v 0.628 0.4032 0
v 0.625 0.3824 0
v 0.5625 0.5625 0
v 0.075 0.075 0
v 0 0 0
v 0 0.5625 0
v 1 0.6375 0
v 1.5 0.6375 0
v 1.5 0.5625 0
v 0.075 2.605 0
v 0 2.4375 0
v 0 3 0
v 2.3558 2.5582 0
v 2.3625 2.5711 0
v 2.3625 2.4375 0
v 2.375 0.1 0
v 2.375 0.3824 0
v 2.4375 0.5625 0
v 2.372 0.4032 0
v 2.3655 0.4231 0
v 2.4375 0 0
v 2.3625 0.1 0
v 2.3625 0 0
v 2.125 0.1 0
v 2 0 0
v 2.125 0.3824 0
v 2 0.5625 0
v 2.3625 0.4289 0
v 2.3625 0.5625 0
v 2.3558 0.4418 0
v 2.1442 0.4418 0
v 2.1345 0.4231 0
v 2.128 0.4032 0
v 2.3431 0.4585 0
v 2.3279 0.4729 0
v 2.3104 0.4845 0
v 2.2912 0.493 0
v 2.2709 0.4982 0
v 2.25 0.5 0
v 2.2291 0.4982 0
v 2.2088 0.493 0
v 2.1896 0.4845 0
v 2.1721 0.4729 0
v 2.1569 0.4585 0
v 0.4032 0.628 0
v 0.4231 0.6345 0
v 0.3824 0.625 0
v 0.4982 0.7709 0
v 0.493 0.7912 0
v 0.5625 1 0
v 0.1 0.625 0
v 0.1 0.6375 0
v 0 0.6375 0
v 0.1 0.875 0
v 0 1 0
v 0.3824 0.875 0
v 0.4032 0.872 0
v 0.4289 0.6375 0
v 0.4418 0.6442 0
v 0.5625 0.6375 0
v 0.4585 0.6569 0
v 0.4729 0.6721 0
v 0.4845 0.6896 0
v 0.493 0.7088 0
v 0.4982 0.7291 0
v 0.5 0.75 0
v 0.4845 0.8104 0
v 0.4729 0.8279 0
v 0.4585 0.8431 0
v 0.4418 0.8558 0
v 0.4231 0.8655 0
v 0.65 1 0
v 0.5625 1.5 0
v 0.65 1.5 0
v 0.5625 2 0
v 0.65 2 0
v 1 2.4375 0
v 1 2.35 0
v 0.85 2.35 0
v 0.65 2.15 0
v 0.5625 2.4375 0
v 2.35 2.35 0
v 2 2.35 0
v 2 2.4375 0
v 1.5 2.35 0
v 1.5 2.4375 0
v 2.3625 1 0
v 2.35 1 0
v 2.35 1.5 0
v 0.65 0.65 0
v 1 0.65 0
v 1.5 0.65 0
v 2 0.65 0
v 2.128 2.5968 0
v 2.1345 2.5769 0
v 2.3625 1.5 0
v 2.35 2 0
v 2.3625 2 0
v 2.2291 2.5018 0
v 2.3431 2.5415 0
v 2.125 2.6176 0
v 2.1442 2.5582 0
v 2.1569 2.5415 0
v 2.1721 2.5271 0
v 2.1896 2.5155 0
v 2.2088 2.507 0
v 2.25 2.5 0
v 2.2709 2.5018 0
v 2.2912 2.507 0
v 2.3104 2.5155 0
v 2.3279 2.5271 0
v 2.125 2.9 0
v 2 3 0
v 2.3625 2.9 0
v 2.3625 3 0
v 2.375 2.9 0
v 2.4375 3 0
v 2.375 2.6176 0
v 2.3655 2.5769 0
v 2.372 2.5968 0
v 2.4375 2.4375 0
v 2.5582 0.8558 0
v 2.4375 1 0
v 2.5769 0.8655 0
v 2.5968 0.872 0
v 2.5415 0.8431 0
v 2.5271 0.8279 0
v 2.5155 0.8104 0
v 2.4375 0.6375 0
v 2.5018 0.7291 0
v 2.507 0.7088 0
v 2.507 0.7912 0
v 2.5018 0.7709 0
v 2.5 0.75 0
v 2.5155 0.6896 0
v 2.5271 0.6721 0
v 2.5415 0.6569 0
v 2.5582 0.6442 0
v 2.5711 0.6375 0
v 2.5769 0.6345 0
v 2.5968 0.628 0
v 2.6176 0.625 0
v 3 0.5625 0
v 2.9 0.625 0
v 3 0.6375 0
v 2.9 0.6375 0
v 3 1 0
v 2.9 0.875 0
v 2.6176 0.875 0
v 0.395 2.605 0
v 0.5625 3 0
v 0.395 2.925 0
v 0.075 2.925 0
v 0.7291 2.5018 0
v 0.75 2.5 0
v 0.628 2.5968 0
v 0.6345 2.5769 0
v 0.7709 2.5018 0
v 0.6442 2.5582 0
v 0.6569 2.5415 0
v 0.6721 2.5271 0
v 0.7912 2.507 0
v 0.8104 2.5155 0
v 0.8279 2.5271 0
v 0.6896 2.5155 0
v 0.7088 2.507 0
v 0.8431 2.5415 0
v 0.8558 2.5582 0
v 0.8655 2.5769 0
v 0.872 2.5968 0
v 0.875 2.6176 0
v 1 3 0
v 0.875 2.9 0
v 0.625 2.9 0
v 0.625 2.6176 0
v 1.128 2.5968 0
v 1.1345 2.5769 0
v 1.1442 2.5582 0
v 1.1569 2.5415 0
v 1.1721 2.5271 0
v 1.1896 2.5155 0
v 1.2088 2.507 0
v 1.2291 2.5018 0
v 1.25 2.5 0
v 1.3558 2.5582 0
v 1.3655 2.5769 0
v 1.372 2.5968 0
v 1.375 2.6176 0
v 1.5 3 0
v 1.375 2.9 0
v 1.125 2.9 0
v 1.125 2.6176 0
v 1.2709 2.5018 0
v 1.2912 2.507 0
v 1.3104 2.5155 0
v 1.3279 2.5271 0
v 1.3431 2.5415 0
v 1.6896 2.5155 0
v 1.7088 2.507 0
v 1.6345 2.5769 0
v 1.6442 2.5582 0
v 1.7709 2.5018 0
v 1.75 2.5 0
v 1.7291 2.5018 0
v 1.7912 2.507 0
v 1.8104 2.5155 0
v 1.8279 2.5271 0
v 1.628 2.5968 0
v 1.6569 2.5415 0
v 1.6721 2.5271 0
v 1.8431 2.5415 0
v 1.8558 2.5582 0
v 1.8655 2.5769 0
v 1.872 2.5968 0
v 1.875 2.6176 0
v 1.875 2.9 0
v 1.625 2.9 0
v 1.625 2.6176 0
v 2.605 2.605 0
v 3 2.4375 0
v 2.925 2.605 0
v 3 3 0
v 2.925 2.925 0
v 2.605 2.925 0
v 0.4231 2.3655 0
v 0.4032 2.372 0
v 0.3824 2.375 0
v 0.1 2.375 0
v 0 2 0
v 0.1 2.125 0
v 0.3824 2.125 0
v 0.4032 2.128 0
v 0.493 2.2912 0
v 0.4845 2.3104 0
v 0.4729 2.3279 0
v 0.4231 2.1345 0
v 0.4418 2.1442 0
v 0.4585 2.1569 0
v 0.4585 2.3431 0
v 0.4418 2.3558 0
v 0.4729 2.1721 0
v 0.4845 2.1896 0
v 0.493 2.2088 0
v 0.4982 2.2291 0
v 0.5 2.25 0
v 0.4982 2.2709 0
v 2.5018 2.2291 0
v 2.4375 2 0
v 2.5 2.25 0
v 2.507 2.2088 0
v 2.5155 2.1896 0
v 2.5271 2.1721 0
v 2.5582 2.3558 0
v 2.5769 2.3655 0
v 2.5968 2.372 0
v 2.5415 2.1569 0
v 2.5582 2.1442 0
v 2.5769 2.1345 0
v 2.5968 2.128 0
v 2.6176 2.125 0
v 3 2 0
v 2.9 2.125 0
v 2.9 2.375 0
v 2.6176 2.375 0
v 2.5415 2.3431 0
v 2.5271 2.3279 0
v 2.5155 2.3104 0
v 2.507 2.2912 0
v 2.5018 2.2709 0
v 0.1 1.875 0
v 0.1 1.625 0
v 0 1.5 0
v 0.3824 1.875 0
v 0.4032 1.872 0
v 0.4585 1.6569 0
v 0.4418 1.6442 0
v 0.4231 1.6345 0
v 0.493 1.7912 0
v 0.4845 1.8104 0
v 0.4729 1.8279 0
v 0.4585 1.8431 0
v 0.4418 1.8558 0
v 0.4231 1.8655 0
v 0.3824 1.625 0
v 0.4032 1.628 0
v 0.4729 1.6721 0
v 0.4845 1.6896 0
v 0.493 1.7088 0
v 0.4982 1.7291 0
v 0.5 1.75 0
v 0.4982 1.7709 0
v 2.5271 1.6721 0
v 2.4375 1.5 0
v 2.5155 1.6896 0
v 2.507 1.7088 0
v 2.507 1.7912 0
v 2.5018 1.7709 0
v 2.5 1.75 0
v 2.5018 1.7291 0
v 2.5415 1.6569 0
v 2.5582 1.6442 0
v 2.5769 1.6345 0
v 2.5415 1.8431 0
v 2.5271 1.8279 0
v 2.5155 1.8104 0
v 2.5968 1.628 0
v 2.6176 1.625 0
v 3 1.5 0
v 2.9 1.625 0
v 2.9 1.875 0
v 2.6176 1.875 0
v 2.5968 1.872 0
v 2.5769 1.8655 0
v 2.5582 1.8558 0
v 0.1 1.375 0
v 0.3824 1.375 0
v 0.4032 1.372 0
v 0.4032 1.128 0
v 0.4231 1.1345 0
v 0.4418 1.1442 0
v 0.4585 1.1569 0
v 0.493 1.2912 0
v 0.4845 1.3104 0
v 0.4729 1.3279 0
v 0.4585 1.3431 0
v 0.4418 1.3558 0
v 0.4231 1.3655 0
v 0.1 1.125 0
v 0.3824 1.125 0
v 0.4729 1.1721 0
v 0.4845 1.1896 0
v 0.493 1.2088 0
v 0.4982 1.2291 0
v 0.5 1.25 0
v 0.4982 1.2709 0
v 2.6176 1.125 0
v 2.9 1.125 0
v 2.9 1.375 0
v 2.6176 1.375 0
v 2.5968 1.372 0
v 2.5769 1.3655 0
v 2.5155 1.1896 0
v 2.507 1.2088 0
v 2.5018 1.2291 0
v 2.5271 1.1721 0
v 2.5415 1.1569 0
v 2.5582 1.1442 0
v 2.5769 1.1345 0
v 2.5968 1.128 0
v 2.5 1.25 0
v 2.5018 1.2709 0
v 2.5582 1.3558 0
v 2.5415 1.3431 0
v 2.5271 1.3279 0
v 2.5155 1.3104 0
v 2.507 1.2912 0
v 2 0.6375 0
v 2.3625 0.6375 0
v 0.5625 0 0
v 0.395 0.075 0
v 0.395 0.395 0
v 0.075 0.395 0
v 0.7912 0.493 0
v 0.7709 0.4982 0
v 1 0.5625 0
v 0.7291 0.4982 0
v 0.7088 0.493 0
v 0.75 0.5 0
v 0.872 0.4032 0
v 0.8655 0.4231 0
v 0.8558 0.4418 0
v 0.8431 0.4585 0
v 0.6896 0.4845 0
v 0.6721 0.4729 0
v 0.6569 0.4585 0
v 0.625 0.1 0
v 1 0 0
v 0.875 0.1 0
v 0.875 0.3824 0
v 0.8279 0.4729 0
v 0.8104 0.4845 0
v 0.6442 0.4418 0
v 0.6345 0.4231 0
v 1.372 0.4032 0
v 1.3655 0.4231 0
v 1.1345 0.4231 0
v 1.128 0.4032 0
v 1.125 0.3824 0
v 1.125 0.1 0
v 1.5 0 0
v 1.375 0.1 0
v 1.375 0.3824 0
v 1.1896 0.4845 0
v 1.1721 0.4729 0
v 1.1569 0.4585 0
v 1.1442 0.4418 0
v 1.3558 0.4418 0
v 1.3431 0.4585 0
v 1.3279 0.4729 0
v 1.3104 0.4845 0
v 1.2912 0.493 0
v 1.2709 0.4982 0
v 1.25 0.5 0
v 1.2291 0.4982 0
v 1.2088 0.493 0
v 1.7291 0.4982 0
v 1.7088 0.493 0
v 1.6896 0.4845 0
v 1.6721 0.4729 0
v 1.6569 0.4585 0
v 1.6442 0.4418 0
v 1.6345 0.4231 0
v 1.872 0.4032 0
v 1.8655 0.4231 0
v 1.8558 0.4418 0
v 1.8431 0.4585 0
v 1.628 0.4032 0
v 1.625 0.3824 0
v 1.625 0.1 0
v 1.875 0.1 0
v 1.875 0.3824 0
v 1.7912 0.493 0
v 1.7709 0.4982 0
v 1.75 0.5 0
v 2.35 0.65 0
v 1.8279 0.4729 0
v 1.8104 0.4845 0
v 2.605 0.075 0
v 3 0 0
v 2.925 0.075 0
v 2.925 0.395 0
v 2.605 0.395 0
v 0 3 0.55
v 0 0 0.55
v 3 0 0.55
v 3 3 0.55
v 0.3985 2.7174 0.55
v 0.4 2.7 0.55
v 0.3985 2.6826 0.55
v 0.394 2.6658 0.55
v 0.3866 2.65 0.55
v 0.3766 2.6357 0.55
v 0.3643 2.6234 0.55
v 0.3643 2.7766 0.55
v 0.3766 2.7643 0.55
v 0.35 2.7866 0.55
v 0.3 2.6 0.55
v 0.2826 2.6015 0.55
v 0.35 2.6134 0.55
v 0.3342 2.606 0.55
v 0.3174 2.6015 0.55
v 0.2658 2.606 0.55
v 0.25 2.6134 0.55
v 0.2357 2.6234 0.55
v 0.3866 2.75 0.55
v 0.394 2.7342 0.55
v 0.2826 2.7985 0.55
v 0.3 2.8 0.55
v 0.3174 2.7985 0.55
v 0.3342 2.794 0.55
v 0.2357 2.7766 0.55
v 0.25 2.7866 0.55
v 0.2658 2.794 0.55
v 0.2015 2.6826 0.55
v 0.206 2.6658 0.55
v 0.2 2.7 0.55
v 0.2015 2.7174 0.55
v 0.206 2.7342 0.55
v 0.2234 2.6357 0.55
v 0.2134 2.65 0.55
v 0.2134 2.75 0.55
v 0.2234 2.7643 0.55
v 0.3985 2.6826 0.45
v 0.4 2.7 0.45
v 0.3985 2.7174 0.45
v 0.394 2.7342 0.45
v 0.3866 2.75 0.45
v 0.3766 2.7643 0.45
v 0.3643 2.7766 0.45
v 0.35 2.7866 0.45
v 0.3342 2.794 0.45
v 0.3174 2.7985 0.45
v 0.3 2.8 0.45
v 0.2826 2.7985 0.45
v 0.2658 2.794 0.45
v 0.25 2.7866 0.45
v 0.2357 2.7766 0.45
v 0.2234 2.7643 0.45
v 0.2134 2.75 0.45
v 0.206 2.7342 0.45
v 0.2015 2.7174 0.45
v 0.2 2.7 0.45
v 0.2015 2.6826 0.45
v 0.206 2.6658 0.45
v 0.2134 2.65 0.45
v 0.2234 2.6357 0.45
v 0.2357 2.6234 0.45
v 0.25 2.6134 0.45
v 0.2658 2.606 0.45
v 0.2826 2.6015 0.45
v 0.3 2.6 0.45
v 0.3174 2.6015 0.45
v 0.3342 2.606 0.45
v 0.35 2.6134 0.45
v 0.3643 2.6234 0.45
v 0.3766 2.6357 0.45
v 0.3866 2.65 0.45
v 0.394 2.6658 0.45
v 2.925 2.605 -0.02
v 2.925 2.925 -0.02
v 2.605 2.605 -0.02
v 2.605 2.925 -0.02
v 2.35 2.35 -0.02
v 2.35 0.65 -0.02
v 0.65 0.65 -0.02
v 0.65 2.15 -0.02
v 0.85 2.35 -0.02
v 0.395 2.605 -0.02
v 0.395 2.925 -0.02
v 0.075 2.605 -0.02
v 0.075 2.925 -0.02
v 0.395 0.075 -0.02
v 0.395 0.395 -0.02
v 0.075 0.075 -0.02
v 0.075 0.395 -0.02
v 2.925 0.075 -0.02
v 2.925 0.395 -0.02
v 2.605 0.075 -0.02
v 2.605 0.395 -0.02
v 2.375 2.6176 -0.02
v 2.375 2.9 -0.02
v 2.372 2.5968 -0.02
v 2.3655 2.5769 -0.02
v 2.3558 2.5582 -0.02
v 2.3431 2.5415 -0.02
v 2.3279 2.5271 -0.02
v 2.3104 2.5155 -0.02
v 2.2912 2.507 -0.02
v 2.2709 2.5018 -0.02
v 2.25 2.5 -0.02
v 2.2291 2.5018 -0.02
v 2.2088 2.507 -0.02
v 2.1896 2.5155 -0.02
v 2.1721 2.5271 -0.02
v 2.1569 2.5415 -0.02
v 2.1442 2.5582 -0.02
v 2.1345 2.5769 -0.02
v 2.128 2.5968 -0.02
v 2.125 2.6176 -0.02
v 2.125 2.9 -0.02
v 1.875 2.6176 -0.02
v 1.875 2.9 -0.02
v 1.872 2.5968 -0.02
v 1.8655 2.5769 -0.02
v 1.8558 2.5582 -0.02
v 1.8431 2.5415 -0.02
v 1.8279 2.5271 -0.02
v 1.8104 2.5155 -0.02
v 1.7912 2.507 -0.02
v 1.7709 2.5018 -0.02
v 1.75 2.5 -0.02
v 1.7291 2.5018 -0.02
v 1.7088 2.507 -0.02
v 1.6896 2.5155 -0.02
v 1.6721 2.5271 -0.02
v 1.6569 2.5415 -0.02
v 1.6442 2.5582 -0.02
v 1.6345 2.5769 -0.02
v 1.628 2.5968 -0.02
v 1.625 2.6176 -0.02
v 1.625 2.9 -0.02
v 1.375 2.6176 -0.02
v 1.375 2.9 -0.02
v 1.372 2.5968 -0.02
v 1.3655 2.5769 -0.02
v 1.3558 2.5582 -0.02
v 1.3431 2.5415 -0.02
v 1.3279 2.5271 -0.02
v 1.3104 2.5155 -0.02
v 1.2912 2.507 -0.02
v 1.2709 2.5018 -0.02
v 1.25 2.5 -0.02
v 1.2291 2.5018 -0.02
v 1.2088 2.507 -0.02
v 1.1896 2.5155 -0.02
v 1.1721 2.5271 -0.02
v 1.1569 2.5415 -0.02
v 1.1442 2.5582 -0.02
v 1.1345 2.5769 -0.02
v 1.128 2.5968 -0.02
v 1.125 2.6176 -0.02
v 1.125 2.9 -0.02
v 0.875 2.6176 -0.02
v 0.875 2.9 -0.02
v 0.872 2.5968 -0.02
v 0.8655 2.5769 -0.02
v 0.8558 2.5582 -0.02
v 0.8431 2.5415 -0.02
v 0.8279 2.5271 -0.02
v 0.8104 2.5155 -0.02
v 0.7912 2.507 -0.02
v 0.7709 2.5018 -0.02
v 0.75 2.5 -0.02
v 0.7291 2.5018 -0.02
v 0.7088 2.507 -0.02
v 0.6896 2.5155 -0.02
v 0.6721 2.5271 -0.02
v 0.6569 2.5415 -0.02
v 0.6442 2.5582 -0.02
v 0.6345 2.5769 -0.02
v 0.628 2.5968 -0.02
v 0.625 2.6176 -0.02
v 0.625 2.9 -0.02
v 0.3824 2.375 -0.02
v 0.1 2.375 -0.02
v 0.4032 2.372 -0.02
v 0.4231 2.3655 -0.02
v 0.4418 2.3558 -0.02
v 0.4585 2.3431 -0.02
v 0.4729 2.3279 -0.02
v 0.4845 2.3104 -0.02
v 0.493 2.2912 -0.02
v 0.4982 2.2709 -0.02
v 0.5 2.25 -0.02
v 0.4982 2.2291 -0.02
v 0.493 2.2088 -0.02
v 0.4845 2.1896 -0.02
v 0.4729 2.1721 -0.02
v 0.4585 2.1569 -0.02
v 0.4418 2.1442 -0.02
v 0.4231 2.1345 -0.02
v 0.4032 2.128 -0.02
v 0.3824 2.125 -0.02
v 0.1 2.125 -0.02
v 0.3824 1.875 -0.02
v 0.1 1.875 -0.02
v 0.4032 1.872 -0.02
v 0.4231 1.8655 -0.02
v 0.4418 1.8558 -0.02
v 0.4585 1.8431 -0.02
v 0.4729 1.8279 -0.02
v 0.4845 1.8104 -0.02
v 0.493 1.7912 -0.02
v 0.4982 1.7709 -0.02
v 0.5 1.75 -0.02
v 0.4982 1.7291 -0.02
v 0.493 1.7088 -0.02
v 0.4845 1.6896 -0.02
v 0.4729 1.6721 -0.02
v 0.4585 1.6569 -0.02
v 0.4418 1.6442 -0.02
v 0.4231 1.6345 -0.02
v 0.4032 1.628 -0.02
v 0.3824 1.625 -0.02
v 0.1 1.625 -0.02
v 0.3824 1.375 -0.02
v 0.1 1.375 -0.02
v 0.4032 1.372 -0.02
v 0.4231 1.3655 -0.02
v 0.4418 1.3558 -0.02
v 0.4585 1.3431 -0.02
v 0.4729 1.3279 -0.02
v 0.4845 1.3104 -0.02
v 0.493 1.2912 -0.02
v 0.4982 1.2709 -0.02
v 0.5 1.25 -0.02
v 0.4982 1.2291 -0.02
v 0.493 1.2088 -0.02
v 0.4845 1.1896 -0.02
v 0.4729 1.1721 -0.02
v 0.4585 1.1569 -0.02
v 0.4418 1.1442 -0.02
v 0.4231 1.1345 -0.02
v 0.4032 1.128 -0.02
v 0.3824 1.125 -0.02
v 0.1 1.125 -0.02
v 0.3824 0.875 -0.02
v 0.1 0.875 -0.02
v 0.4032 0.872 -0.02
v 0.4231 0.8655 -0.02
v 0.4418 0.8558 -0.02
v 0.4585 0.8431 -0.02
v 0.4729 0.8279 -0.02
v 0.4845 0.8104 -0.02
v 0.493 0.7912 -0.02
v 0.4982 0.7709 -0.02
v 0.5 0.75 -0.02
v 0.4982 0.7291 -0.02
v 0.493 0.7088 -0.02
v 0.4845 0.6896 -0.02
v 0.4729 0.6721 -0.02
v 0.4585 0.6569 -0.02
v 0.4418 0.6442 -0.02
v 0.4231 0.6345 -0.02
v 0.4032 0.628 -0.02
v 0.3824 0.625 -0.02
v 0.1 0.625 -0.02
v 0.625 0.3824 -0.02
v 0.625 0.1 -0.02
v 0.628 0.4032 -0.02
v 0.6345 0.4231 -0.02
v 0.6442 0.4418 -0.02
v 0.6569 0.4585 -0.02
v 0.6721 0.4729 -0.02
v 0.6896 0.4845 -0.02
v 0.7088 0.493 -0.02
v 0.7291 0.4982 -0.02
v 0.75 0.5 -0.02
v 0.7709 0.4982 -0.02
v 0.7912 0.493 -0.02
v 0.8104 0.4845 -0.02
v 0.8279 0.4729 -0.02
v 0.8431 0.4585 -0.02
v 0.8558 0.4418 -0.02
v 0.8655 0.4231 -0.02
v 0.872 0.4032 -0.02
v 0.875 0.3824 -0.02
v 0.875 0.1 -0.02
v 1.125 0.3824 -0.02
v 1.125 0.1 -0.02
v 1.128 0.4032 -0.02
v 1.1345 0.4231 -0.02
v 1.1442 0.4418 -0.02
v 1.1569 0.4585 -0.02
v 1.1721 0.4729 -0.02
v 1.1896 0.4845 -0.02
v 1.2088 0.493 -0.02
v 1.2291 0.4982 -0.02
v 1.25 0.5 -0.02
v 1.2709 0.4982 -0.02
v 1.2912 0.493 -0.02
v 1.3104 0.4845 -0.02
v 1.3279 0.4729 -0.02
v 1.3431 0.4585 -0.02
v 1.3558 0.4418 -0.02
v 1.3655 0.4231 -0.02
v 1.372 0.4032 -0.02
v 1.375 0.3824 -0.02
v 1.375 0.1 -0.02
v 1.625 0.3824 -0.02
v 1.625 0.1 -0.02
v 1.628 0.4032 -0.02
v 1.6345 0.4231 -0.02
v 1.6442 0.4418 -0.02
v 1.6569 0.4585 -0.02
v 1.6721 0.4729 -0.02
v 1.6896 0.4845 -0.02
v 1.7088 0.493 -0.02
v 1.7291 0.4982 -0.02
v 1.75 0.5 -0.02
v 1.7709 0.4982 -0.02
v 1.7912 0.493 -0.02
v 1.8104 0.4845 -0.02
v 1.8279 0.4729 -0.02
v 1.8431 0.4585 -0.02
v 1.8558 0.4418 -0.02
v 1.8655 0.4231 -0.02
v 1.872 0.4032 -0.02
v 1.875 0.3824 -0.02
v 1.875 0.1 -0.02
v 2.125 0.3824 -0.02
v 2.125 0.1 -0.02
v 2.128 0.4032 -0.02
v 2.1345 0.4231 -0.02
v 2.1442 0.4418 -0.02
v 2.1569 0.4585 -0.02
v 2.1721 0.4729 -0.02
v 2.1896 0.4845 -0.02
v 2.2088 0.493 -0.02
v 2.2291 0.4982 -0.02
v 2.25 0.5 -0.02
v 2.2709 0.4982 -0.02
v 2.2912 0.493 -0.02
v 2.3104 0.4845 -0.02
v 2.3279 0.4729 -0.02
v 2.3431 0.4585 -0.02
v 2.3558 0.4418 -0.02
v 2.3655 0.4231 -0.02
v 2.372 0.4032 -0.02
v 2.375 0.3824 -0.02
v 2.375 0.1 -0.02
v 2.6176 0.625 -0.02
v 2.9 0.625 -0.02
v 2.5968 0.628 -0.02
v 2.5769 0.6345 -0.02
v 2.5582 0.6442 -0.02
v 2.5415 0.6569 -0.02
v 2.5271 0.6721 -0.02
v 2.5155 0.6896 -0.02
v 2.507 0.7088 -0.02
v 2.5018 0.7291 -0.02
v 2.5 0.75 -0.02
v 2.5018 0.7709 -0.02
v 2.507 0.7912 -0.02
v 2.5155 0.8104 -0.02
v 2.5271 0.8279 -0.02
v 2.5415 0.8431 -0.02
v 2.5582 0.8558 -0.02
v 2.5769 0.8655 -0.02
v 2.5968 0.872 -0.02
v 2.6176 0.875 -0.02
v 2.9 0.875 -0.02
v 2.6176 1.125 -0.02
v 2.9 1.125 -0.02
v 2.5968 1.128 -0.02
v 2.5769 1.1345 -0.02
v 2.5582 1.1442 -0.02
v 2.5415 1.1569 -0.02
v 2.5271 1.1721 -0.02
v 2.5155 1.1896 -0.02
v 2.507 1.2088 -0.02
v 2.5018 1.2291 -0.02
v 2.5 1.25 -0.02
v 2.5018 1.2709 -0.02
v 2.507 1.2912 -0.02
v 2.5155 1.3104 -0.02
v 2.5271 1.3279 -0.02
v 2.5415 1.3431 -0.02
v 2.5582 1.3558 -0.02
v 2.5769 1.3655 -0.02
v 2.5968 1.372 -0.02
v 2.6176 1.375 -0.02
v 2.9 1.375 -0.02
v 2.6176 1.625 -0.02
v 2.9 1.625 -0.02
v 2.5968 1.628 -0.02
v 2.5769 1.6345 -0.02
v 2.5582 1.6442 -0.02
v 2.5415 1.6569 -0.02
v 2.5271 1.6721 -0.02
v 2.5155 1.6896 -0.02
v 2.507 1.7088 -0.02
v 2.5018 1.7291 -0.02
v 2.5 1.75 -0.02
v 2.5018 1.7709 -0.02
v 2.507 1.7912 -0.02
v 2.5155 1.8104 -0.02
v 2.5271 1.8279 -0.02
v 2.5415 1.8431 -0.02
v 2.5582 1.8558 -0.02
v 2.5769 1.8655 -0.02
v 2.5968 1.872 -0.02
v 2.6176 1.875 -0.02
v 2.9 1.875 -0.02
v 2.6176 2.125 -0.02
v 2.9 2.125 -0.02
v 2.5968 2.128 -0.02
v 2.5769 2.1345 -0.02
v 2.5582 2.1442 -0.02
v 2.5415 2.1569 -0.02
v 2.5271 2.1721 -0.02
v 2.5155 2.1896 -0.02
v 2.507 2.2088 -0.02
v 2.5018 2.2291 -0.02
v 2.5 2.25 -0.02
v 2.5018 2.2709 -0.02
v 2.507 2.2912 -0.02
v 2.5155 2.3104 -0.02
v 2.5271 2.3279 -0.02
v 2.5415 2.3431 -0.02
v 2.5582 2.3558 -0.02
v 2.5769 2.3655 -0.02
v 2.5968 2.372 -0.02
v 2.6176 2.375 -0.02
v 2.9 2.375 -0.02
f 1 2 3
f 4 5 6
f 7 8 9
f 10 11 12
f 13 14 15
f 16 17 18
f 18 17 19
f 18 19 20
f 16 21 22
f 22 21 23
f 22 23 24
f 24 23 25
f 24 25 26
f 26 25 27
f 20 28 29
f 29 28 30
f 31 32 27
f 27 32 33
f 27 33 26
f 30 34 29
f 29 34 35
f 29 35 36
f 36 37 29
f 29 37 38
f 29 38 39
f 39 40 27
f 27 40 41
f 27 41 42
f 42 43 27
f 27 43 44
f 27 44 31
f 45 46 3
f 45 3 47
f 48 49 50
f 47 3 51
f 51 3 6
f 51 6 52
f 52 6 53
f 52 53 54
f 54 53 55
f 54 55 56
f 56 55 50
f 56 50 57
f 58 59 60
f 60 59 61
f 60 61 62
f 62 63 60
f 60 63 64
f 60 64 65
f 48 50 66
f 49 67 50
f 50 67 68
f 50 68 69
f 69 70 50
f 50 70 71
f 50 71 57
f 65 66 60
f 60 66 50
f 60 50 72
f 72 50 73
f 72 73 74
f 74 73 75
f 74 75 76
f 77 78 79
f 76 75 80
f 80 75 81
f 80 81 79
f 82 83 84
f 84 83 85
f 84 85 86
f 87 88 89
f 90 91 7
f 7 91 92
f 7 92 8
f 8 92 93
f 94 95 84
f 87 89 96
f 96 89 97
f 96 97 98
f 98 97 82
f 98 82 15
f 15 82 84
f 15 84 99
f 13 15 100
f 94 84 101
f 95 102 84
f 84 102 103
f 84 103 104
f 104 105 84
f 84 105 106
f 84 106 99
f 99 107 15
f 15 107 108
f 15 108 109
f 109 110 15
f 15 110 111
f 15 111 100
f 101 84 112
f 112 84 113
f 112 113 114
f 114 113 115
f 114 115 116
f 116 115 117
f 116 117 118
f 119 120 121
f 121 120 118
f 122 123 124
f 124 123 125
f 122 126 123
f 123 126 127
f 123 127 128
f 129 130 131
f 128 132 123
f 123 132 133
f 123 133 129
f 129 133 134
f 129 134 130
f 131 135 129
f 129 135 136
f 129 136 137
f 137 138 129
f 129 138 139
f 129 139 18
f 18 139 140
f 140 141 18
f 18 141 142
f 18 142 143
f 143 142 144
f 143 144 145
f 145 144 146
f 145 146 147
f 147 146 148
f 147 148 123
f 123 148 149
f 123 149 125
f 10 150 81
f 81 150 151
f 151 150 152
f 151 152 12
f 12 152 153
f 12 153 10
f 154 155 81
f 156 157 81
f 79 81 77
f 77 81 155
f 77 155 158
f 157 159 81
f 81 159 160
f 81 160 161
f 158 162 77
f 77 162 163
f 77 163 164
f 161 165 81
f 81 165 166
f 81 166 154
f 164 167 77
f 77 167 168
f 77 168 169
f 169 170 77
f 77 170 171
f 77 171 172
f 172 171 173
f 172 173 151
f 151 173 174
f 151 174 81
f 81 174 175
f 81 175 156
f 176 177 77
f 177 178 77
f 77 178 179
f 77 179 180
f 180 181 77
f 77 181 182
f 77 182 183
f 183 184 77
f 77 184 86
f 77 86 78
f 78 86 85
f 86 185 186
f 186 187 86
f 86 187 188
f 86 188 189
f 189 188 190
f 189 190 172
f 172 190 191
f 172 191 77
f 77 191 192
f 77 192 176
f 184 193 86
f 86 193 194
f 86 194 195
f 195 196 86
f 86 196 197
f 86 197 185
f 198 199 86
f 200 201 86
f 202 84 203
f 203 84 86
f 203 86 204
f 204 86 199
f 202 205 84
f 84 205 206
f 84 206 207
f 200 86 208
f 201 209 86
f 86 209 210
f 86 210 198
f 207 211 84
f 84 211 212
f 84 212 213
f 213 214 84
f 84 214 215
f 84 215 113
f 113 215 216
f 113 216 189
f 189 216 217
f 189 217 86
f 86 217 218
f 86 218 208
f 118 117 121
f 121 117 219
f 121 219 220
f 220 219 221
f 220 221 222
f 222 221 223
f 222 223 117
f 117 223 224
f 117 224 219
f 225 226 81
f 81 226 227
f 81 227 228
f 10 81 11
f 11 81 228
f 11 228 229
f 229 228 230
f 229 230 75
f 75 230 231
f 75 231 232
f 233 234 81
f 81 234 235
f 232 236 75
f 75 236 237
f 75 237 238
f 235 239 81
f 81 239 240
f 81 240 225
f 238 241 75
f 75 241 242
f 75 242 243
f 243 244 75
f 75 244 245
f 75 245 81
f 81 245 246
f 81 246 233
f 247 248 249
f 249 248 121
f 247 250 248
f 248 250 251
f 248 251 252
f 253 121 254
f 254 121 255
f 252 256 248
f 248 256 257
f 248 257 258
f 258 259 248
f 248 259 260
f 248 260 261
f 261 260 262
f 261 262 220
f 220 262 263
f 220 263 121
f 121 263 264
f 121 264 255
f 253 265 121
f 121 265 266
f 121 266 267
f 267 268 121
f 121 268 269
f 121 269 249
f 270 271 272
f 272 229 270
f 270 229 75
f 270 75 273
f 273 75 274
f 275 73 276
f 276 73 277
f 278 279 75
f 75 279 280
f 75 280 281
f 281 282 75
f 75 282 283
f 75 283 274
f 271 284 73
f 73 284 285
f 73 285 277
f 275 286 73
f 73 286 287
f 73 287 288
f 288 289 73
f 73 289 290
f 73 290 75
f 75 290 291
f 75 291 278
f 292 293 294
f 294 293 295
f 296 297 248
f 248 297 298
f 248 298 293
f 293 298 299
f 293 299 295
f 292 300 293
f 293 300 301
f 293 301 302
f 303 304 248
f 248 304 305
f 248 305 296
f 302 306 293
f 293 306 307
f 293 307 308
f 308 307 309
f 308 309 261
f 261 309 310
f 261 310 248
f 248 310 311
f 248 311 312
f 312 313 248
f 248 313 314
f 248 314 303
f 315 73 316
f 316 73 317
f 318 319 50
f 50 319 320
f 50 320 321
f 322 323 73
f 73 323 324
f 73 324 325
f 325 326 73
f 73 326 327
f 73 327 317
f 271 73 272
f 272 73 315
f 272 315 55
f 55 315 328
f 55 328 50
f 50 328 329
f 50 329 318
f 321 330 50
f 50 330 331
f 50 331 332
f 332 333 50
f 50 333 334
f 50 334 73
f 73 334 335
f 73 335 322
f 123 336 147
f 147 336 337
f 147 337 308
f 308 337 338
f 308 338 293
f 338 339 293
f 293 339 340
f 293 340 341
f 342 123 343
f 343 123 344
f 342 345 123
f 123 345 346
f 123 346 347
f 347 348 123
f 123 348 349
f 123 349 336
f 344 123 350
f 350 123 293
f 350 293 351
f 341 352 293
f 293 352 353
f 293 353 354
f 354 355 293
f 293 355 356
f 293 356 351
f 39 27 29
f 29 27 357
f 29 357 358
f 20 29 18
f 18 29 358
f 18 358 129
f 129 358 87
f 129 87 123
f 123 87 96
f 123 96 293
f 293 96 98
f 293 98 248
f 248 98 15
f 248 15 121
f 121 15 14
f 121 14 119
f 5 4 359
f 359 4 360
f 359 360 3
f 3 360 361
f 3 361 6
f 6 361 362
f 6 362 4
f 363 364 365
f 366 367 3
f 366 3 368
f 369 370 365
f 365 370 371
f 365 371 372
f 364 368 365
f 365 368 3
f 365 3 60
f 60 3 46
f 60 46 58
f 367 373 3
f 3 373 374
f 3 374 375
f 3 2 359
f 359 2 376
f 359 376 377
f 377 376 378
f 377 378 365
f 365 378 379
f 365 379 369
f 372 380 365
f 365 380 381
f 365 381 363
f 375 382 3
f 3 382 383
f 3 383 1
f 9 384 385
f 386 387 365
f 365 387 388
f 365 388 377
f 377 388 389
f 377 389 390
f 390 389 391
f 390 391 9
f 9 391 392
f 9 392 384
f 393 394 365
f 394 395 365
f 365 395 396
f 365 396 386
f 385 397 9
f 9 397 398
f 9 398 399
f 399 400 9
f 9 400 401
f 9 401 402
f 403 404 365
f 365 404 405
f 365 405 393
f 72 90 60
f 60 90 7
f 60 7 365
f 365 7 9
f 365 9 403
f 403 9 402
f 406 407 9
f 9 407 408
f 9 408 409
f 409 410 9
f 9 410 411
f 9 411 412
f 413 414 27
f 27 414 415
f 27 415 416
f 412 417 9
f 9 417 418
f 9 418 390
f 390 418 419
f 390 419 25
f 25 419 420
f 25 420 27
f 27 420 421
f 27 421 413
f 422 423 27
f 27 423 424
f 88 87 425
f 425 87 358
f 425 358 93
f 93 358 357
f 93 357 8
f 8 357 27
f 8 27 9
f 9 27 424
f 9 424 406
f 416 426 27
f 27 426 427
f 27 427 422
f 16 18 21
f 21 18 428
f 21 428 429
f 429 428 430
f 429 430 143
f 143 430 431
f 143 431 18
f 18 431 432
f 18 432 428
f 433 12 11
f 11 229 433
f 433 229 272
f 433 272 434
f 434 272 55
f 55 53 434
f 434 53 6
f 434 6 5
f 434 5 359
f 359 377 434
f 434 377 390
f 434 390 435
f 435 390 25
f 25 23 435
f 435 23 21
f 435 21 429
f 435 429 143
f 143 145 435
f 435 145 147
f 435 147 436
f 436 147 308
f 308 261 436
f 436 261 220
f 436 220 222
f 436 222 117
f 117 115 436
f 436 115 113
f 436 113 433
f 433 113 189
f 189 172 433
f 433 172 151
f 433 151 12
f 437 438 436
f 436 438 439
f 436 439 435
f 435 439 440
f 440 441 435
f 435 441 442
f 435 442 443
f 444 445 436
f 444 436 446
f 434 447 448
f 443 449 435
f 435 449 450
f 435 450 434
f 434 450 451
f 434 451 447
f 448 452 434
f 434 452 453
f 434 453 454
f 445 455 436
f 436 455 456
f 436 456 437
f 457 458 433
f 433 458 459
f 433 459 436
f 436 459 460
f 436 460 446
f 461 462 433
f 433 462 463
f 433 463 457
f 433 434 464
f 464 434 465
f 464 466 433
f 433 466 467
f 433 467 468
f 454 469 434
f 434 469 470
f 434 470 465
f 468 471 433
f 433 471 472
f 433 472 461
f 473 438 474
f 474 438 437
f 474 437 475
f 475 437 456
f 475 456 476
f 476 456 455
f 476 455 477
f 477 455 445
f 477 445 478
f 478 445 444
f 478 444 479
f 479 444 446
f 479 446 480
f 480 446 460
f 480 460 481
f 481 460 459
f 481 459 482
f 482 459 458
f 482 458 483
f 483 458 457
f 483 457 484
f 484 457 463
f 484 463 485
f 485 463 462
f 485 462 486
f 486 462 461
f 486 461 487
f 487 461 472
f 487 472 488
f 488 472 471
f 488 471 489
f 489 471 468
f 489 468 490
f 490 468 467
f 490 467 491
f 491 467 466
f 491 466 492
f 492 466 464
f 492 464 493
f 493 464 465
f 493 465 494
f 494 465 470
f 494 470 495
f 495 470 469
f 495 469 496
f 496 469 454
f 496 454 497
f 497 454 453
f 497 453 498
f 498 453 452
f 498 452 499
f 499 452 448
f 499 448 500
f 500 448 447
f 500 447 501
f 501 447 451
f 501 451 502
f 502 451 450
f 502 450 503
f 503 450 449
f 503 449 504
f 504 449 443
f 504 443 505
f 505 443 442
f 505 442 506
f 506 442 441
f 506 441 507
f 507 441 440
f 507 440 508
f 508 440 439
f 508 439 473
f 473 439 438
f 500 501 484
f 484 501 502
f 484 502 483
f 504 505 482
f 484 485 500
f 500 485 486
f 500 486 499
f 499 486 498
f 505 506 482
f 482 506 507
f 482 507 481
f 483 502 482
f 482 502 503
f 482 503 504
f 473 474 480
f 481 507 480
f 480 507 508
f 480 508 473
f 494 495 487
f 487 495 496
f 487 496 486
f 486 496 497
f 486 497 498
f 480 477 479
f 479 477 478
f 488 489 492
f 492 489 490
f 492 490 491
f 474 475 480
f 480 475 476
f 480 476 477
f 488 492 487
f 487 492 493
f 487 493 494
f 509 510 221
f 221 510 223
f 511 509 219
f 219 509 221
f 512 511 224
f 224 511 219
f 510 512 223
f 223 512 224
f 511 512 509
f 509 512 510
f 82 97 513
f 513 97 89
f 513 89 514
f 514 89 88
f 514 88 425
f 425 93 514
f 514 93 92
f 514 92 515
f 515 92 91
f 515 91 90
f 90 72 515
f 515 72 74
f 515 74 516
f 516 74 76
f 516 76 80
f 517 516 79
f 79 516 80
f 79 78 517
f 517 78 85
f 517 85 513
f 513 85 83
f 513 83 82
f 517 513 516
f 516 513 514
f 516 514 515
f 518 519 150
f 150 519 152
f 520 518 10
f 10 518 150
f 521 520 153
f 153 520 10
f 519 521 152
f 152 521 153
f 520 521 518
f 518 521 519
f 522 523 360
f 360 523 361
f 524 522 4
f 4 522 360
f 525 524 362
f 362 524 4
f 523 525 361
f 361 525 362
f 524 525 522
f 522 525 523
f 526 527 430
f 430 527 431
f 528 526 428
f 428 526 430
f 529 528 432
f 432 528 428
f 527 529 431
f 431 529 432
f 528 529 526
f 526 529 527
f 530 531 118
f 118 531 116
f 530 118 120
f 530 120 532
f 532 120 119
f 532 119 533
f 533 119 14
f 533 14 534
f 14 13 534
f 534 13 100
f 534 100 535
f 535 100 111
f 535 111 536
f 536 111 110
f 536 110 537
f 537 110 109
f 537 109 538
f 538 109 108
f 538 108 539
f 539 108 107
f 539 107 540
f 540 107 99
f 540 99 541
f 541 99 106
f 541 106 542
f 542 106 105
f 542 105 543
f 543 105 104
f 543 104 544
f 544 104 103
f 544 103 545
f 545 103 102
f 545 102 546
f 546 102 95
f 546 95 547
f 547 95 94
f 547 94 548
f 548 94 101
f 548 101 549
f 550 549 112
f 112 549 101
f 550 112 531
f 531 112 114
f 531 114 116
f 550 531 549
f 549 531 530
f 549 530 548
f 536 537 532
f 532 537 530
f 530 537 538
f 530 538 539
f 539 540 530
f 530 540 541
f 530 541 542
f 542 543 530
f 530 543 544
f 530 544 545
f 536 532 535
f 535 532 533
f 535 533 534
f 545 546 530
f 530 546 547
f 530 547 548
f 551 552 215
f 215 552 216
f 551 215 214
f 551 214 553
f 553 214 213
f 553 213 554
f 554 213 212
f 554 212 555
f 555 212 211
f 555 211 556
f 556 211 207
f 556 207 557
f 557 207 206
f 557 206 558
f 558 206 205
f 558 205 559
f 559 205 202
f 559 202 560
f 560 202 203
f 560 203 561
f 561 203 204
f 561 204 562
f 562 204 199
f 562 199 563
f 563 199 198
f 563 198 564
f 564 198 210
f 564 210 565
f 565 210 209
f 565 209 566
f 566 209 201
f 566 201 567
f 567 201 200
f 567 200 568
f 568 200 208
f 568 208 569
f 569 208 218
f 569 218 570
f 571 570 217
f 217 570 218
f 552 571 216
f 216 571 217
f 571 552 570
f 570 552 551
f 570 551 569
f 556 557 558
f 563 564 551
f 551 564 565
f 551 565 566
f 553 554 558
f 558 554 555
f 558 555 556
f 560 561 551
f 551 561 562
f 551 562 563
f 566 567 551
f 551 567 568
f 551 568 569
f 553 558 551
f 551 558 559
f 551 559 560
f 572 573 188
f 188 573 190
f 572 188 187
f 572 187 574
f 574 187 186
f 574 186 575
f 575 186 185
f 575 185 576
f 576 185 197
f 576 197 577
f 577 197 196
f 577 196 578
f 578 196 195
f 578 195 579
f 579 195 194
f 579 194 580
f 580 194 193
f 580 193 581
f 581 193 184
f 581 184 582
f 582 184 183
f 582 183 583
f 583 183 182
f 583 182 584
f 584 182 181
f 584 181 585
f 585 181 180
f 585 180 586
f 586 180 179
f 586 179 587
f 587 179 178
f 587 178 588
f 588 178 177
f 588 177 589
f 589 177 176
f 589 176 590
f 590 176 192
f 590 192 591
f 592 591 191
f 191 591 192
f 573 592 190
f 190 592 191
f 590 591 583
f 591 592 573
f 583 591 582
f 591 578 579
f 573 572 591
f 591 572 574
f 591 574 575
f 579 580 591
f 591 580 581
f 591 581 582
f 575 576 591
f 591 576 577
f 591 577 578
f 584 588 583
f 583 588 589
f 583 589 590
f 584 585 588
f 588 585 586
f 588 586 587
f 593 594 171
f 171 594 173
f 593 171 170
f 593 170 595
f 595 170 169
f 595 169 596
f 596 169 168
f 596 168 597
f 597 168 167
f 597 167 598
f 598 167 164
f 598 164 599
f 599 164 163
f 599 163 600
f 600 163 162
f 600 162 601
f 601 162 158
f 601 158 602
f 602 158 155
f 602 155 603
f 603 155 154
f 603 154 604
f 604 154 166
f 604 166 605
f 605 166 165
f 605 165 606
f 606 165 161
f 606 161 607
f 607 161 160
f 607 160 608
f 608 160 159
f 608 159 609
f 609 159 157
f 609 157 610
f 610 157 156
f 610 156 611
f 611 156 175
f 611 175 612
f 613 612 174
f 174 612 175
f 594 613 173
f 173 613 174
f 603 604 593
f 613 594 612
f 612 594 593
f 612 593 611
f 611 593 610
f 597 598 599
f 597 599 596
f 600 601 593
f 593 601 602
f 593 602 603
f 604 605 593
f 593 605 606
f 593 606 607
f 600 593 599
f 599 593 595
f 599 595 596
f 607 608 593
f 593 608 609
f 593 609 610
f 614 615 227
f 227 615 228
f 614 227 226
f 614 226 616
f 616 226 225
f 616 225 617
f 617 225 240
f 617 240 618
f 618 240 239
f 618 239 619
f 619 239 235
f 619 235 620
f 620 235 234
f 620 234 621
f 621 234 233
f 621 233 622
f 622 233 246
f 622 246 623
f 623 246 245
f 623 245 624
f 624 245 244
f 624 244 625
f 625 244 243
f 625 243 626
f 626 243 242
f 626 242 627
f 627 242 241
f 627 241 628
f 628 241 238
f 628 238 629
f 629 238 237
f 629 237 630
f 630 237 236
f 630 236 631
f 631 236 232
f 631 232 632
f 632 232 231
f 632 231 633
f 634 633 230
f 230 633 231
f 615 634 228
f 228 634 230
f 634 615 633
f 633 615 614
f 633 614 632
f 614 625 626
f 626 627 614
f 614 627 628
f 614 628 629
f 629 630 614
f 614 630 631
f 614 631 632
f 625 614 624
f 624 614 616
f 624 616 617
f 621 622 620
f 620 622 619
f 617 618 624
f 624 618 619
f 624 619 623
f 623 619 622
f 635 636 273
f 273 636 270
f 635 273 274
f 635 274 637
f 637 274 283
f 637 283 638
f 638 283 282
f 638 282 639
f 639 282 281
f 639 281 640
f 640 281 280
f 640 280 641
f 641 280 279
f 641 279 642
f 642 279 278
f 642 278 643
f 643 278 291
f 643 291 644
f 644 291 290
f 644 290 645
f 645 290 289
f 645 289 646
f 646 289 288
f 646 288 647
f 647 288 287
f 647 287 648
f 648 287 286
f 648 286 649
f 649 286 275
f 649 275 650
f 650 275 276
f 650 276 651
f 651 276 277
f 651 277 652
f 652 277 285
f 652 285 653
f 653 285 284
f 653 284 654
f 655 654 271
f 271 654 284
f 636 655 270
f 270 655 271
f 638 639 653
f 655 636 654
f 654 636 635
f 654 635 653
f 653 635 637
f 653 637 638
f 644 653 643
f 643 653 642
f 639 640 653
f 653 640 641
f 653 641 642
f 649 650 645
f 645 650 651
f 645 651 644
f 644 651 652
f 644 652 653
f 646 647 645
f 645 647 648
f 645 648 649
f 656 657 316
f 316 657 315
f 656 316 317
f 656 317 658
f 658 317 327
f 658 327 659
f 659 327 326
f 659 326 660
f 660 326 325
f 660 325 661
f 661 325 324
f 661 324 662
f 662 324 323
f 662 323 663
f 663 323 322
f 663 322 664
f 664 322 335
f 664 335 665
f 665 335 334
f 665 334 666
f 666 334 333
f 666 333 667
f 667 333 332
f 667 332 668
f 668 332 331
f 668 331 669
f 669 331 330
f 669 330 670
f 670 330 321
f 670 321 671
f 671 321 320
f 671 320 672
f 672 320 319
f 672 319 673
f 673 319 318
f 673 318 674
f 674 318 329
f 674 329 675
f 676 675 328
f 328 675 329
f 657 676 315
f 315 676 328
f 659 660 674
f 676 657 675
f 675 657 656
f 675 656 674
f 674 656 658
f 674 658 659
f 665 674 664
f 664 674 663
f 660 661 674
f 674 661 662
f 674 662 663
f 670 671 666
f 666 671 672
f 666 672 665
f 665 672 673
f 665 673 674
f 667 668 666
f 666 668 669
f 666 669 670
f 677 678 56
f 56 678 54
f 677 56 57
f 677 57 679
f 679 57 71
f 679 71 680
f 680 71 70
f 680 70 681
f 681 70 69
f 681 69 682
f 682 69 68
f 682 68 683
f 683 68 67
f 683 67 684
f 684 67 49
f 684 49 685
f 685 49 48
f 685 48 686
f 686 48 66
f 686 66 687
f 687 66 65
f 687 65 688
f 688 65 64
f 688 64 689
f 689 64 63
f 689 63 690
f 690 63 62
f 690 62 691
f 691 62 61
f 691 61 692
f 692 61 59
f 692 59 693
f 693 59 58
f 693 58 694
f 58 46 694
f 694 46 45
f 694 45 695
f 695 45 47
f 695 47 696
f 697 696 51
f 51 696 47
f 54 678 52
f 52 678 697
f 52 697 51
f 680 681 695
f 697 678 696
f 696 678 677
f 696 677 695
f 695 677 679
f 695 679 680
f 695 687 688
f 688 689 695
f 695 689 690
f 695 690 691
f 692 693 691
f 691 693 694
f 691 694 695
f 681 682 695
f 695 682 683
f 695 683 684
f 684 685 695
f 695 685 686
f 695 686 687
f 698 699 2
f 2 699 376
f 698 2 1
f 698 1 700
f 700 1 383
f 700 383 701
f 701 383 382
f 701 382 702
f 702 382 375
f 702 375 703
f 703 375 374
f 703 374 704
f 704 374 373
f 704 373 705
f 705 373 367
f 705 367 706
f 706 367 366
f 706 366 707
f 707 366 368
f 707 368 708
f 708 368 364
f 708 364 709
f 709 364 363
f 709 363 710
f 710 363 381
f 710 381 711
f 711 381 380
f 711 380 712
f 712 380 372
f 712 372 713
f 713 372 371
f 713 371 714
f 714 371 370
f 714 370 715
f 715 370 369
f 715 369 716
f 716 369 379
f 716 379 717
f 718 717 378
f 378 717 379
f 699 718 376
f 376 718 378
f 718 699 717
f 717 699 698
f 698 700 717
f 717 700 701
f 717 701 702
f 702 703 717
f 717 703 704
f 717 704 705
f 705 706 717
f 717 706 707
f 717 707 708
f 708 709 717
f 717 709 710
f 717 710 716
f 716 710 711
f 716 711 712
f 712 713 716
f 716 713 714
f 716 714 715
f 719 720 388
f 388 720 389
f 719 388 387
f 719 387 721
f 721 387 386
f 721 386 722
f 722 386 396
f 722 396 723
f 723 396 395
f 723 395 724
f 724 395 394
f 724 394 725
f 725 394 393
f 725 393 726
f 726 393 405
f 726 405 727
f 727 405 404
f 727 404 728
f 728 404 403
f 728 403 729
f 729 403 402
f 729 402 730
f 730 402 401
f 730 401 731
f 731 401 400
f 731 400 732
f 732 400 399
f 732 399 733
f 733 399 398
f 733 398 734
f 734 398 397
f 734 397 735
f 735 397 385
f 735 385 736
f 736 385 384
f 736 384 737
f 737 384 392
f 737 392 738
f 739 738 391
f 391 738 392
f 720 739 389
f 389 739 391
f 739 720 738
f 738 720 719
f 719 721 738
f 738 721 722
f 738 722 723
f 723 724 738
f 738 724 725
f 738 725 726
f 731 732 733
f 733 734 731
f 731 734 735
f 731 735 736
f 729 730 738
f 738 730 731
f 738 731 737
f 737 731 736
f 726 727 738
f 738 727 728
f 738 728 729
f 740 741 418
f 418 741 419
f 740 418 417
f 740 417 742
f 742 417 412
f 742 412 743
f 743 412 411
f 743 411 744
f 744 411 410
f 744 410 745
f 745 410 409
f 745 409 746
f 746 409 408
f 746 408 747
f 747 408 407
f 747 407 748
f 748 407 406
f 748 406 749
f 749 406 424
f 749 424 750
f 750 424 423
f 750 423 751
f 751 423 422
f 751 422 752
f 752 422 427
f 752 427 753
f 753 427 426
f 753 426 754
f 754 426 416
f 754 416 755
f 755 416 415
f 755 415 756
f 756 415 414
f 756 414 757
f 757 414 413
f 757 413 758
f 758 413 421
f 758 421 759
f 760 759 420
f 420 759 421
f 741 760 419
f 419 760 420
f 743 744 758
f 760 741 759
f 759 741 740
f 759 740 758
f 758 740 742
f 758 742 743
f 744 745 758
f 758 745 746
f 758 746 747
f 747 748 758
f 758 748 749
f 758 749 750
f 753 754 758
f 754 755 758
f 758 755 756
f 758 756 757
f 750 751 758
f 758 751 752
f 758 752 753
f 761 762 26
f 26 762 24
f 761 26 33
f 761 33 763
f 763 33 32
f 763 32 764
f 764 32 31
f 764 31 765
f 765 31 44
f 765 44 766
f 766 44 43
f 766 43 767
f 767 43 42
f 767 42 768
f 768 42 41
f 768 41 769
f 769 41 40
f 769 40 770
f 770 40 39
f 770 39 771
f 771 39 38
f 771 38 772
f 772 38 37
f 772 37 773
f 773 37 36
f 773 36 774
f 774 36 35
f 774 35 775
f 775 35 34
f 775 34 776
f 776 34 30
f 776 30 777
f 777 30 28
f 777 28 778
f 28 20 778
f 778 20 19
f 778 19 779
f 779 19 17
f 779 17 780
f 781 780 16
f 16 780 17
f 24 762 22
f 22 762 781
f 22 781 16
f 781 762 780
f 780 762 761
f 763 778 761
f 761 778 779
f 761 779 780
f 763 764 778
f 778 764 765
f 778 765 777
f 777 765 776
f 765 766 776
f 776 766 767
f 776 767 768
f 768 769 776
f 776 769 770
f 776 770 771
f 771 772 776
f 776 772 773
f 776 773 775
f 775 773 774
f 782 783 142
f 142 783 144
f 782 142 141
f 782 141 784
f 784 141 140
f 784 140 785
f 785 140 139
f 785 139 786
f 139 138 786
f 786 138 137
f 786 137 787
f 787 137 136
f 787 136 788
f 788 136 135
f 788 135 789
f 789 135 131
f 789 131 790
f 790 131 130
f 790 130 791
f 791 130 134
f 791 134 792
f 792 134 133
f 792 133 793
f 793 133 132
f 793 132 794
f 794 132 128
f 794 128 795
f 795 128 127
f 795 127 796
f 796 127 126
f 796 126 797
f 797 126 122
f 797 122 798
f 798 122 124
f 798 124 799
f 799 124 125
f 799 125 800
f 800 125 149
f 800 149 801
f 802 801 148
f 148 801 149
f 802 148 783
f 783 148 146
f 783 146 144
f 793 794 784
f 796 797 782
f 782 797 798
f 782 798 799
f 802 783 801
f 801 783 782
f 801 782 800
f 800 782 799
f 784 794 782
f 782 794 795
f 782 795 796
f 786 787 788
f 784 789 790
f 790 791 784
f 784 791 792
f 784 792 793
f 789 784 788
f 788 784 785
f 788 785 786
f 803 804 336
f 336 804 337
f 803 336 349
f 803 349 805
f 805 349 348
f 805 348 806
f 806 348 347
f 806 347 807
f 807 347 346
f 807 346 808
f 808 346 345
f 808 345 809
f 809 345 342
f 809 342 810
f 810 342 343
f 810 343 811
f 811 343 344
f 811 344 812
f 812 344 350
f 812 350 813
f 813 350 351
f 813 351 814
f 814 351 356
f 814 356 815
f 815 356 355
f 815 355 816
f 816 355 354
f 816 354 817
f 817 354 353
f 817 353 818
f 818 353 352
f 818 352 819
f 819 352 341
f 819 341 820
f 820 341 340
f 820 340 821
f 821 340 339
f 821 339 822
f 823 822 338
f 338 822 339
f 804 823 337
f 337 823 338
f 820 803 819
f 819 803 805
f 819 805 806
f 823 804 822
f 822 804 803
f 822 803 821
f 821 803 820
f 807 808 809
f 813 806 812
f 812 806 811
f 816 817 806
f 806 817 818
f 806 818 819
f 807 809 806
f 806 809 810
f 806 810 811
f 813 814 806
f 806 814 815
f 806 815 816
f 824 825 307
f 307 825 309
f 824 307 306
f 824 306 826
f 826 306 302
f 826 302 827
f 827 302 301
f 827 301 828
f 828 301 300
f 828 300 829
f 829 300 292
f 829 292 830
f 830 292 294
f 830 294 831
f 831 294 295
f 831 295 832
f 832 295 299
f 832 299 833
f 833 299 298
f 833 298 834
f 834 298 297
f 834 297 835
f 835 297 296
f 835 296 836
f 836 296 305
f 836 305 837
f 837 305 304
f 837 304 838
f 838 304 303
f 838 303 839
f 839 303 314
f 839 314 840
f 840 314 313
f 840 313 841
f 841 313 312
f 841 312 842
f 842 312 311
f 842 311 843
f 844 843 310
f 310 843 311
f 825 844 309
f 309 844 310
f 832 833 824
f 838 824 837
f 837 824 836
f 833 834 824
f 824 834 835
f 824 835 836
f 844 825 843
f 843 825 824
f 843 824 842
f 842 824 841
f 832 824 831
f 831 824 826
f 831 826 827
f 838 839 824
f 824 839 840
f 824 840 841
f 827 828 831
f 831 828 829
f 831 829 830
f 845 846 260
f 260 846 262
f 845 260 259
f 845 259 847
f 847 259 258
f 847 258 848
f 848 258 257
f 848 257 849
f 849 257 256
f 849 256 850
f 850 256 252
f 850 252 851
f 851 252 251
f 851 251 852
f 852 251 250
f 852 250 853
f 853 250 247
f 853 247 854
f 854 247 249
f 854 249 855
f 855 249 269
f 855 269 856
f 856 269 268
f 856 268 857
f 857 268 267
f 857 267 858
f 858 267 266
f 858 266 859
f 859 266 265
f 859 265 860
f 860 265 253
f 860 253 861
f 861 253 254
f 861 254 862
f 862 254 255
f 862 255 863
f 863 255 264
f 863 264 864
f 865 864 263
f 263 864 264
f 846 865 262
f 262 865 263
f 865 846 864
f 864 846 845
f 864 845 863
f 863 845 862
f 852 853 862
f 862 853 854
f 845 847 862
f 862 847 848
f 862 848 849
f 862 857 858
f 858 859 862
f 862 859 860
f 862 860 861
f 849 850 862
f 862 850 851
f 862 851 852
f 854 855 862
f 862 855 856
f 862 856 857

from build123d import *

# Parameters (mm, degrees)
SKETCH1_W           = 3
SKETCH1_H           = 3
BOSS_EXTRUDE1_DEPTH = 0.55
SKETCH2_R           = 0.1
CUT_EXTRUDE1_DEPTH  = 0.1
SKETCH3_W           = 0.32
SKETCH3_H           = 0.32
BOSS_EXTRUDE2_DEPTH = 0.02


with BuildPart() as part:
    # Sketch1 → Boss-Extrude1 (new body)
    with BuildSketch(Plane.XY):
        with Locations((1.5, 1.5)):
            Rectangle(SKETCH1_W, SKETCH1_H)
    extrude(amount=BOSS_EXTRUDE1_DEPTH)

    # Sketch2 → Cut-Extrude1 (cut)
    with BuildSketch(Plane.XY.offset(0.55)):
        with Locations((0.3, 2.7)):
            Circle(SKETCH2_R)
    extrude(amount=-CUT_EXTRUDE1_DEPTH, mode=Mode.SUBTRACT)

    # Sketch3 → Boss-Extrude2 (add)
    with BuildSketch(Plane(origin=(0, 0, 0), x_dir=(-1, 0, 0), z_dir=(0, 0, -1))):
        with Locations((-2.765, 2.765)):
            Rectangle(SKETCH3_W, SKETCH3_H)
        with Locations((-0.235, 2.765)):
            Rectangle(SKETCH3_W, SKETCH3_H)
        with Locations((-0.235, 0.235)):
            Rectangle(SKETCH3_W, SKETCH3_H)
        with Locations((-2.765, 0.235)):
            Rectangle(SKETCH3_W, SKETCH3_H)
        Polygon((-0.85, 2.35), (-0.65, 2.15), (-0.65, 0.65), (-2.35, 0.65), (-2.35, 2.35), align=None)
        with BuildLine():
            Line((-2.375, 2.9), (-2.125, 2.9))
            Line((-2.125, 2.9), (-2.125, 2.617575378))
            ThreePointArc((-2.125, 2.617575378), (-2.25, 2.5), (-2.375, 2.617575378))
            Line((-2.375, 2.617575378), (-2.375, 2.9))
        make_face()
        with BuildLine():
            Line((-1.875, 2.9), (-1.625, 2.9))
            Line((-1.625, 2.9), (-1.625, 2.617575378))
            ThreePointArc((-1.625, 2.617575378), (-1.75, 2.5), (-1.875, 2.617575378))
            Line((-1.875, 2.617575378), (-1.875, 2.9))
        make_face()
        with BuildLine():
            Line((-1.375, 2.9), (-1.125, 2.9))
            Line((-1.125, 2.9), (-1.125, 2.617575378))
            ThreePointArc((-1.125, 2.617575378), (-1.25, 2.5), (-1.375, 2.617575378))
            Line((-1.375, 2.617575378), (-1.375, 2.9))
        make_face()
        with BuildLine():
            Line((-0.875, 2.9), (-0.625, 2.9))
            Line((-0.625, 2.9), (-0.625, 2.617575378))
            ThreePointArc((-0.625, 2.617575378), (-0.75, 2.5), (-0.875, 2.617575378))
            Line((-0.875, 2.617575378), (-0.875, 2.9))
        make_face()
        with BuildLine():
            Line((-0.1, 2.375), (-0.1, 2.125))
            Line((-0.1, 2.125), (-0.382424622, 2.125))
            ThreePointArc((-0.382424622, 2.125), (-0.5, 2.25), (-0.382424622, 2.375))
            Line((-0.382424622, 2.375), (-0.1, 2.375))
        make_face()
        with BuildLine():
            Line((-0.1, 1.875), (-0.1, 1.625))
            Line((-0.1, 1.625), (-0.382424622, 1.625))
            ThreePointArc((-0.382424622, 1.625), (-0.5, 1.75), (-0.382424622, 1.875))
            Line((-0.382424622, 1.875), (-0.1, 1.875))
        make_face()
        with BuildLine():
            Line((-0.1, 1.375), (-0.1, 1.125))
            Line((-0.1, 1.125), (-0.382424622, 1.125))
            ThreePointArc((-0.382424622, 1.125), (-0.5, 1.25), (-0.382424622, 1.375))
            Line((-0.382424622, 1.375), (-0.1, 1.375))
        make_face()
        with BuildLine():
            Line((-0.1, 0.875), (-0.1, 0.625))
            Line((-0.1, 0.625), (-0.382424622, 0.625))
            ThreePointArc((-0.382424622, 0.625), (-0.5, 0.75), (-0.382424622, 0.875))
            Line((-0.382424622, 0.875), (-0.1, 0.875))
        make_face()
        with BuildLine():
            Line((-0.625, 0.1), (-0.875, 0.1))
            Line((-0.875, 0.1), (-0.875, 0.382424622))
            ThreePointArc((-0.875, 0.382424622), (-0.75, 0.5), (-0.625, 0.382424622))
            Line((-0.625, 0.382424622), (-0.625, 0.1))
        make_face()
        with BuildLine():
            Line((-1.125, 0.1), (-1.375, 0.1))
            Line((-1.375, 0.1), (-1.375, 0.382424622))
            ThreePointArc((-1.375, 0.382424622), (-1.25, 0.5), (-1.125, 0.382424622))
            Line((-1.125, 0.382424622), (-1.125, 0.1))
        make_face()
        with BuildLine():
            Line((-1.625, 0.1), (-1.875, 0.1))
            Line((-1.875, 0.1), (-1.875, 0.382424622))
            ThreePointArc((-1.875, 0.382424622), (-1.75, 0.5), (-1.625, 0.382424622))
            Line((-1.625, 0.382424622), (-1.625, 0.1))
        make_face()
        with BuildLine():
            Line((-2.125, 0.1), (-2.375, 0.1))
            Line((-2.375, 0.1), (-2.375, 0.382424622))
            ThreePointArc((-2.375, 0.382424622), (-2.25, 0.5), (-2.125, 0.382424622))
            Line((-2.125, 0.382424622), (-2.125, 0.1))
        make_face()
        with BuildLine():
            Line((-2.9, 0.625), (-2.9, 0.875))
            Line((-2.9, 0.875), (-2.617575378, 0.875))
            ThreePointArc((-2.617575378, 0.875), (-2.5, 0.75), (-2.617575378, 0.625))
            Line((-2.617575378, 0.625), (-2.9, 0.625))
        make_face()
        with BuildLine():
            Line((-2.9, 1.125), (-2.9, 1.375))
            Line((-2.9, 1.375), (-2.617575378, 1.375))
            ThreePointArc((-2.617575378, 1.375), (-2.5, 1.25), (-2.617575378, 1.125))
            Line((-2.617575378, 1.125), (-2.9, 1.125))
        make_face()
        with BuildLine():
            Line((-2.9, 1.625), (-2.9, 1.875))
            Line((-2.9, 1.875), (-2.617575378, 1.875))
            ThreePointArc((-2.617575378, 1.875), (-2.5, 1.75), (-2.617575378, 1.625))
            Line((-2.617575378, 1.625), (-2.9, 1.625))
        make_face()
        with BuildLine():
            Line((-2.9, 2.125), (-2.9, 2.375))
            Line((-2.9, 2.375), (-2.617575378, 2.375))
            ThreePointArc((-2.617575378, 2.375), (-2.5, 2.25), (-2.617575378, 2.125))
            Line((-2.617575378, 2.125), (-2.9, 2.125))
        make_face()
    extrude(amount=BOSS_EXTRUDE2_DEPTH)


solid = part.part
